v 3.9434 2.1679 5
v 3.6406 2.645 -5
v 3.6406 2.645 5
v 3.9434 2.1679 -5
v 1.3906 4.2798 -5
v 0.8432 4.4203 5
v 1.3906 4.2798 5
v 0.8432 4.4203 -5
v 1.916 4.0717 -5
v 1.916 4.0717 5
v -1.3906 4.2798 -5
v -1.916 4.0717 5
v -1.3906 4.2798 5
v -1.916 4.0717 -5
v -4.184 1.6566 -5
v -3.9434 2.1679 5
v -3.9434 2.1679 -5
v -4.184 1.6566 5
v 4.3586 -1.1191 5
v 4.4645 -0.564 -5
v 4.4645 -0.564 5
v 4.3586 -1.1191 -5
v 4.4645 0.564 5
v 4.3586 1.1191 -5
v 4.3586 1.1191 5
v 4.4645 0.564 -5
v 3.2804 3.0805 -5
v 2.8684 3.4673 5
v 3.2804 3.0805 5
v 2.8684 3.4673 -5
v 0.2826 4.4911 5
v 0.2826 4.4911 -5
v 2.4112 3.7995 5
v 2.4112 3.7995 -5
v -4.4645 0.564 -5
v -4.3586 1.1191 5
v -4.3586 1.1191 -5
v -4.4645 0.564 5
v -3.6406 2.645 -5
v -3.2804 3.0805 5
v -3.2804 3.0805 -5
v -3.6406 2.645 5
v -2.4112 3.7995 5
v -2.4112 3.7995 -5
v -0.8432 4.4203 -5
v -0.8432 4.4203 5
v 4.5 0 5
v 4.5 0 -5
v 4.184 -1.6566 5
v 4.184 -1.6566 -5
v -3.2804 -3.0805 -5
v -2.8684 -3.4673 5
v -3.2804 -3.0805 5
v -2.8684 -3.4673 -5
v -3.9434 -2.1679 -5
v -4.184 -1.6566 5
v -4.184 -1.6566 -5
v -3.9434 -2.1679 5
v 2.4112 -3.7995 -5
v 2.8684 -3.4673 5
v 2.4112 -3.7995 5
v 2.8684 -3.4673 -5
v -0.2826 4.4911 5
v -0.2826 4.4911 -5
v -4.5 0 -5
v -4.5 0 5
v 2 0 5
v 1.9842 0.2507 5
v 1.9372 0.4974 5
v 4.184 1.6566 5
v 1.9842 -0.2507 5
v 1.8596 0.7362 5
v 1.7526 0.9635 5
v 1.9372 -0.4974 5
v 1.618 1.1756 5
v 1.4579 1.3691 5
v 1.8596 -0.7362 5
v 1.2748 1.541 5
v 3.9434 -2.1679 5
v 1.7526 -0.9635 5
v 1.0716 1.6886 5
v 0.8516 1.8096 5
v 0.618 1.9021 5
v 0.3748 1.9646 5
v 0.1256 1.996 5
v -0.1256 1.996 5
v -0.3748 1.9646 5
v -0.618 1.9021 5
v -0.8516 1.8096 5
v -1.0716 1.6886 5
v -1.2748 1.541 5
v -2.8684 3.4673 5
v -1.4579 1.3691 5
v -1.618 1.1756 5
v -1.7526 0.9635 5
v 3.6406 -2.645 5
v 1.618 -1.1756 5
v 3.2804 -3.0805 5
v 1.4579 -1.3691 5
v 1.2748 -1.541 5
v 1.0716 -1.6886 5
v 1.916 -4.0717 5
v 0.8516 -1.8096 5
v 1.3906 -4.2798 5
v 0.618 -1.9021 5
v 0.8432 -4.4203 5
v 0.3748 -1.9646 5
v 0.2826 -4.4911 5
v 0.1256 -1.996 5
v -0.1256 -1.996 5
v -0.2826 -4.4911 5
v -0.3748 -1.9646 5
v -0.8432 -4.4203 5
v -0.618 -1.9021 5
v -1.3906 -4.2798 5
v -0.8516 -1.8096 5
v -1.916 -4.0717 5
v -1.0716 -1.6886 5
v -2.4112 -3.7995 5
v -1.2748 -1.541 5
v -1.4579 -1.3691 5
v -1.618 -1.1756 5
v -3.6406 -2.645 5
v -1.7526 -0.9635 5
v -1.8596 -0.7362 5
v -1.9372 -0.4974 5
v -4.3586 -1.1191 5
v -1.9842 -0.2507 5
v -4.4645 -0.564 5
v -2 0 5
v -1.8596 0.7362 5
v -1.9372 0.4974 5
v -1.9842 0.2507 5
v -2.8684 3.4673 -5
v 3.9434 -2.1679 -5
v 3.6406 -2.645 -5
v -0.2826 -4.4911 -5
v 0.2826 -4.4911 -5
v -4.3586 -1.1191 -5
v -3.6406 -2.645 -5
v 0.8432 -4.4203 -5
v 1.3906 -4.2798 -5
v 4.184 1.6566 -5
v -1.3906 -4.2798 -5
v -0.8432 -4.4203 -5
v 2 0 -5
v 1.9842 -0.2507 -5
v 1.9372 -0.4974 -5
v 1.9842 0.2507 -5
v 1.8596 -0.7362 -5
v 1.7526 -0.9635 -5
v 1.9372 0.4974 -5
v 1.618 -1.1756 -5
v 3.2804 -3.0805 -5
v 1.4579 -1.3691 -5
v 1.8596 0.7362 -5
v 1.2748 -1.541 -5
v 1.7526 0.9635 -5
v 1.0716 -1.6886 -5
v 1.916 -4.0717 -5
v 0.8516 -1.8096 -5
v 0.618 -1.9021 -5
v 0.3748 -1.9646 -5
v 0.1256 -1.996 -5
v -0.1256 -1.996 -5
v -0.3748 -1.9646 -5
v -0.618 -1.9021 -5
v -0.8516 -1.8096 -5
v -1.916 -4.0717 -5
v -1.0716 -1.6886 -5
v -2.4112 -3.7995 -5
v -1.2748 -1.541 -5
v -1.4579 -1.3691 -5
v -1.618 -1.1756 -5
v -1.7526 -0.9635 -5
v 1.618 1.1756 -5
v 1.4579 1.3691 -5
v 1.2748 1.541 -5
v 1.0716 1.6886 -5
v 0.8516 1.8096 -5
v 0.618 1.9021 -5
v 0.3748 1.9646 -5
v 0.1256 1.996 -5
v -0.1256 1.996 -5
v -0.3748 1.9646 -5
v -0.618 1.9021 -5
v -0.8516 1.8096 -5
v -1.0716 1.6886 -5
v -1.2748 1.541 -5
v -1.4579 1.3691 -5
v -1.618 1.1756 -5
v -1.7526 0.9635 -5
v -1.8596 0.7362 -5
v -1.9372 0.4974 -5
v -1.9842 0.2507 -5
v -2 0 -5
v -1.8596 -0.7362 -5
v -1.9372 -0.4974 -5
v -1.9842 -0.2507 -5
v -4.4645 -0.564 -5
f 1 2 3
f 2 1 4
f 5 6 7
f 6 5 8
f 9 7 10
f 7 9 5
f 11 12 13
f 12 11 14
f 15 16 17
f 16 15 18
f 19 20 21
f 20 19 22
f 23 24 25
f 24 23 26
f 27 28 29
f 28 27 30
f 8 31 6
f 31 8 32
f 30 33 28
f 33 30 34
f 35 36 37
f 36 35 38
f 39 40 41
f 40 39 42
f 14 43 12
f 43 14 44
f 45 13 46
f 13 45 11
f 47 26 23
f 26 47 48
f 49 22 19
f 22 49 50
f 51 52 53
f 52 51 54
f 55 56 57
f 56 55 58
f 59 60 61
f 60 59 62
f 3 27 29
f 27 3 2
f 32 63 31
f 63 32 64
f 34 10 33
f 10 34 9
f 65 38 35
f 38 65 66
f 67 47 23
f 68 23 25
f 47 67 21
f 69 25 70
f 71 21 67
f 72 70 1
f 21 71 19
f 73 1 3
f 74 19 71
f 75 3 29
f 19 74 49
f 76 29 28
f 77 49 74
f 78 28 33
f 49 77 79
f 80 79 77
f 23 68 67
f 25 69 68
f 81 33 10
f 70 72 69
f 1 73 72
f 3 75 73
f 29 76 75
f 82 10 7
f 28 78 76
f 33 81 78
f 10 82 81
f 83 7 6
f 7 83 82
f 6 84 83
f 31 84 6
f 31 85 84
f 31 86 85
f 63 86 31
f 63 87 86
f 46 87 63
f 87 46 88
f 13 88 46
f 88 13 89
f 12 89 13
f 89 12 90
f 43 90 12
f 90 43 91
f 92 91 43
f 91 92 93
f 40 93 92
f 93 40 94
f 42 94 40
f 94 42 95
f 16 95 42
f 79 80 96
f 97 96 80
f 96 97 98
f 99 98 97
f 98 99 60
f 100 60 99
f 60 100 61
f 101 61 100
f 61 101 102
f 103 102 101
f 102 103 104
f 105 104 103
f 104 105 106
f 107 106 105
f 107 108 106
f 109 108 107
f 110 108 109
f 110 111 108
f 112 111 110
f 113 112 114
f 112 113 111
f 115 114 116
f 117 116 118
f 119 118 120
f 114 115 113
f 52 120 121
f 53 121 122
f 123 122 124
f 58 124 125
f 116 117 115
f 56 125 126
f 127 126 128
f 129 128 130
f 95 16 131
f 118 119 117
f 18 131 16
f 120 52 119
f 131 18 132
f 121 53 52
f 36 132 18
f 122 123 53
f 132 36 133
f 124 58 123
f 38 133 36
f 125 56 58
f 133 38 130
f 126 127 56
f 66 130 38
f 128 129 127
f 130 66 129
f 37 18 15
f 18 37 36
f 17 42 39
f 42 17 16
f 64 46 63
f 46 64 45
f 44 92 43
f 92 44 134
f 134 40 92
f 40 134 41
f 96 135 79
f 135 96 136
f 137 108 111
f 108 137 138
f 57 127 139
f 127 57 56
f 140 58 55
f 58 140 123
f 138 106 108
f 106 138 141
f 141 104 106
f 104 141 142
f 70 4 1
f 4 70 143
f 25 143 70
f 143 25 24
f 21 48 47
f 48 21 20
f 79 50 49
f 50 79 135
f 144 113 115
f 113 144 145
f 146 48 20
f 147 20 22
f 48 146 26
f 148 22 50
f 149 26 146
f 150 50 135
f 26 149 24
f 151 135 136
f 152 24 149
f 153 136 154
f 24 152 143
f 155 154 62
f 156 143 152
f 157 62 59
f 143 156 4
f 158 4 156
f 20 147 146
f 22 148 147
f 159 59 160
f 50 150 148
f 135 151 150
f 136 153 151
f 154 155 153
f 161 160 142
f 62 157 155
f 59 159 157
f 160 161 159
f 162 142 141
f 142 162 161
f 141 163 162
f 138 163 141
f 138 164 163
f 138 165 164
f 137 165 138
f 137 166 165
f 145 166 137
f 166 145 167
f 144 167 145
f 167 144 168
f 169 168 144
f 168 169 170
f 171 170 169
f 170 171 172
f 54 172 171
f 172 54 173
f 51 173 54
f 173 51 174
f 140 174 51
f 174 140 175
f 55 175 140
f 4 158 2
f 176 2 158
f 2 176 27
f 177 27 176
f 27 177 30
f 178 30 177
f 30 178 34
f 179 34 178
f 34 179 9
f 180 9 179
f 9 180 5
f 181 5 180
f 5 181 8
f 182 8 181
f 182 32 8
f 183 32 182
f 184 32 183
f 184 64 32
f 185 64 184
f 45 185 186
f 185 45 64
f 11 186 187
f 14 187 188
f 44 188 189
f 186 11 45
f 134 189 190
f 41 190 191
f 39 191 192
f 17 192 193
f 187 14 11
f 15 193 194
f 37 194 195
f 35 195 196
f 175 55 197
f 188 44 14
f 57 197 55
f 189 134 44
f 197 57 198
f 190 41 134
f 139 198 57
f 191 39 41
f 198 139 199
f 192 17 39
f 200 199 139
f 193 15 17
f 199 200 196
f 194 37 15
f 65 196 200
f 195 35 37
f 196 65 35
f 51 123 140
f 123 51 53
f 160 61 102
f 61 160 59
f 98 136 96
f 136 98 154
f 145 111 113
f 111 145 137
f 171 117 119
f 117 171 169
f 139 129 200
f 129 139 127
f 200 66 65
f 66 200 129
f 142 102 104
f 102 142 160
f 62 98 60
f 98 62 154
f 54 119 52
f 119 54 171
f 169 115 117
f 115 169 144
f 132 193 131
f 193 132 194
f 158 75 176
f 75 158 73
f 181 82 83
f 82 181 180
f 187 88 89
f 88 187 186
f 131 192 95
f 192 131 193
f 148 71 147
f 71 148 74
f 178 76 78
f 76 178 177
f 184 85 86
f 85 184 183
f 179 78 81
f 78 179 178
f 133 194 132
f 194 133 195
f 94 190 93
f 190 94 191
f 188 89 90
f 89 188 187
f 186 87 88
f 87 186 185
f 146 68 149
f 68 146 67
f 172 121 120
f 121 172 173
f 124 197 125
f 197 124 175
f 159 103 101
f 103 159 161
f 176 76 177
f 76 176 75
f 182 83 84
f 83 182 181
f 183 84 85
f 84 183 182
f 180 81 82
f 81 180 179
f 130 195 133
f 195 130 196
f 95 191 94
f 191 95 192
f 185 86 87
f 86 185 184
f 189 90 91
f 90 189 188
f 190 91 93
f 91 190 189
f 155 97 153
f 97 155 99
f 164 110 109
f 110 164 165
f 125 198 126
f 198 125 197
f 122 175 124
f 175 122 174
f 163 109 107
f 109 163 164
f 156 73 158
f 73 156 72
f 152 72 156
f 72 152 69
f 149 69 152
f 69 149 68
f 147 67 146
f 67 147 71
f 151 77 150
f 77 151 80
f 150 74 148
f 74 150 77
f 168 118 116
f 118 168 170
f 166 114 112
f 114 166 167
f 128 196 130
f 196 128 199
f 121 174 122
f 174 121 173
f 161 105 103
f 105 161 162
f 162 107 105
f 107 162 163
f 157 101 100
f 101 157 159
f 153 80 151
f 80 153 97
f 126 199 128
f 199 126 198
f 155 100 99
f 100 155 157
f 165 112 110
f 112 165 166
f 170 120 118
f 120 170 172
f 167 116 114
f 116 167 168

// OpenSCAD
$fn = 50;


difference() {
	union() {
		translate(v = [0, 0, -5.0000000000]) {
			cylinder(h = 10, r = 4.5000000000);
		}
	}
	union() {
		translate(v = [0, 0, -100.0000000000]) {
			cylinder(h = 200, r = 2);
		}
	}
}
